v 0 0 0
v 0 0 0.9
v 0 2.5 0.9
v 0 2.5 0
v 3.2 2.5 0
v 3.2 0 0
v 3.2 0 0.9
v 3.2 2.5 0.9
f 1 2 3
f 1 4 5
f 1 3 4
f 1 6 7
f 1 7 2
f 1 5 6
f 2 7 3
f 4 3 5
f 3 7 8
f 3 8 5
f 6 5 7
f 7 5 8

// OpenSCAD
/* Warning, this is a very basic generator with a lot of approximation 
input data : [VLGA, ALA, 3.2x2.5x0.9mm, 6, , A, C04-01215A]
generated by com.zoubworld.electronics.cad.model3d.Basic
Date : Sun Feb 15 10:50:49 CET 2026
*/

//body
color("black")
translate([0,0,0])
cube([3.2,2.5,0.9], center=false);
